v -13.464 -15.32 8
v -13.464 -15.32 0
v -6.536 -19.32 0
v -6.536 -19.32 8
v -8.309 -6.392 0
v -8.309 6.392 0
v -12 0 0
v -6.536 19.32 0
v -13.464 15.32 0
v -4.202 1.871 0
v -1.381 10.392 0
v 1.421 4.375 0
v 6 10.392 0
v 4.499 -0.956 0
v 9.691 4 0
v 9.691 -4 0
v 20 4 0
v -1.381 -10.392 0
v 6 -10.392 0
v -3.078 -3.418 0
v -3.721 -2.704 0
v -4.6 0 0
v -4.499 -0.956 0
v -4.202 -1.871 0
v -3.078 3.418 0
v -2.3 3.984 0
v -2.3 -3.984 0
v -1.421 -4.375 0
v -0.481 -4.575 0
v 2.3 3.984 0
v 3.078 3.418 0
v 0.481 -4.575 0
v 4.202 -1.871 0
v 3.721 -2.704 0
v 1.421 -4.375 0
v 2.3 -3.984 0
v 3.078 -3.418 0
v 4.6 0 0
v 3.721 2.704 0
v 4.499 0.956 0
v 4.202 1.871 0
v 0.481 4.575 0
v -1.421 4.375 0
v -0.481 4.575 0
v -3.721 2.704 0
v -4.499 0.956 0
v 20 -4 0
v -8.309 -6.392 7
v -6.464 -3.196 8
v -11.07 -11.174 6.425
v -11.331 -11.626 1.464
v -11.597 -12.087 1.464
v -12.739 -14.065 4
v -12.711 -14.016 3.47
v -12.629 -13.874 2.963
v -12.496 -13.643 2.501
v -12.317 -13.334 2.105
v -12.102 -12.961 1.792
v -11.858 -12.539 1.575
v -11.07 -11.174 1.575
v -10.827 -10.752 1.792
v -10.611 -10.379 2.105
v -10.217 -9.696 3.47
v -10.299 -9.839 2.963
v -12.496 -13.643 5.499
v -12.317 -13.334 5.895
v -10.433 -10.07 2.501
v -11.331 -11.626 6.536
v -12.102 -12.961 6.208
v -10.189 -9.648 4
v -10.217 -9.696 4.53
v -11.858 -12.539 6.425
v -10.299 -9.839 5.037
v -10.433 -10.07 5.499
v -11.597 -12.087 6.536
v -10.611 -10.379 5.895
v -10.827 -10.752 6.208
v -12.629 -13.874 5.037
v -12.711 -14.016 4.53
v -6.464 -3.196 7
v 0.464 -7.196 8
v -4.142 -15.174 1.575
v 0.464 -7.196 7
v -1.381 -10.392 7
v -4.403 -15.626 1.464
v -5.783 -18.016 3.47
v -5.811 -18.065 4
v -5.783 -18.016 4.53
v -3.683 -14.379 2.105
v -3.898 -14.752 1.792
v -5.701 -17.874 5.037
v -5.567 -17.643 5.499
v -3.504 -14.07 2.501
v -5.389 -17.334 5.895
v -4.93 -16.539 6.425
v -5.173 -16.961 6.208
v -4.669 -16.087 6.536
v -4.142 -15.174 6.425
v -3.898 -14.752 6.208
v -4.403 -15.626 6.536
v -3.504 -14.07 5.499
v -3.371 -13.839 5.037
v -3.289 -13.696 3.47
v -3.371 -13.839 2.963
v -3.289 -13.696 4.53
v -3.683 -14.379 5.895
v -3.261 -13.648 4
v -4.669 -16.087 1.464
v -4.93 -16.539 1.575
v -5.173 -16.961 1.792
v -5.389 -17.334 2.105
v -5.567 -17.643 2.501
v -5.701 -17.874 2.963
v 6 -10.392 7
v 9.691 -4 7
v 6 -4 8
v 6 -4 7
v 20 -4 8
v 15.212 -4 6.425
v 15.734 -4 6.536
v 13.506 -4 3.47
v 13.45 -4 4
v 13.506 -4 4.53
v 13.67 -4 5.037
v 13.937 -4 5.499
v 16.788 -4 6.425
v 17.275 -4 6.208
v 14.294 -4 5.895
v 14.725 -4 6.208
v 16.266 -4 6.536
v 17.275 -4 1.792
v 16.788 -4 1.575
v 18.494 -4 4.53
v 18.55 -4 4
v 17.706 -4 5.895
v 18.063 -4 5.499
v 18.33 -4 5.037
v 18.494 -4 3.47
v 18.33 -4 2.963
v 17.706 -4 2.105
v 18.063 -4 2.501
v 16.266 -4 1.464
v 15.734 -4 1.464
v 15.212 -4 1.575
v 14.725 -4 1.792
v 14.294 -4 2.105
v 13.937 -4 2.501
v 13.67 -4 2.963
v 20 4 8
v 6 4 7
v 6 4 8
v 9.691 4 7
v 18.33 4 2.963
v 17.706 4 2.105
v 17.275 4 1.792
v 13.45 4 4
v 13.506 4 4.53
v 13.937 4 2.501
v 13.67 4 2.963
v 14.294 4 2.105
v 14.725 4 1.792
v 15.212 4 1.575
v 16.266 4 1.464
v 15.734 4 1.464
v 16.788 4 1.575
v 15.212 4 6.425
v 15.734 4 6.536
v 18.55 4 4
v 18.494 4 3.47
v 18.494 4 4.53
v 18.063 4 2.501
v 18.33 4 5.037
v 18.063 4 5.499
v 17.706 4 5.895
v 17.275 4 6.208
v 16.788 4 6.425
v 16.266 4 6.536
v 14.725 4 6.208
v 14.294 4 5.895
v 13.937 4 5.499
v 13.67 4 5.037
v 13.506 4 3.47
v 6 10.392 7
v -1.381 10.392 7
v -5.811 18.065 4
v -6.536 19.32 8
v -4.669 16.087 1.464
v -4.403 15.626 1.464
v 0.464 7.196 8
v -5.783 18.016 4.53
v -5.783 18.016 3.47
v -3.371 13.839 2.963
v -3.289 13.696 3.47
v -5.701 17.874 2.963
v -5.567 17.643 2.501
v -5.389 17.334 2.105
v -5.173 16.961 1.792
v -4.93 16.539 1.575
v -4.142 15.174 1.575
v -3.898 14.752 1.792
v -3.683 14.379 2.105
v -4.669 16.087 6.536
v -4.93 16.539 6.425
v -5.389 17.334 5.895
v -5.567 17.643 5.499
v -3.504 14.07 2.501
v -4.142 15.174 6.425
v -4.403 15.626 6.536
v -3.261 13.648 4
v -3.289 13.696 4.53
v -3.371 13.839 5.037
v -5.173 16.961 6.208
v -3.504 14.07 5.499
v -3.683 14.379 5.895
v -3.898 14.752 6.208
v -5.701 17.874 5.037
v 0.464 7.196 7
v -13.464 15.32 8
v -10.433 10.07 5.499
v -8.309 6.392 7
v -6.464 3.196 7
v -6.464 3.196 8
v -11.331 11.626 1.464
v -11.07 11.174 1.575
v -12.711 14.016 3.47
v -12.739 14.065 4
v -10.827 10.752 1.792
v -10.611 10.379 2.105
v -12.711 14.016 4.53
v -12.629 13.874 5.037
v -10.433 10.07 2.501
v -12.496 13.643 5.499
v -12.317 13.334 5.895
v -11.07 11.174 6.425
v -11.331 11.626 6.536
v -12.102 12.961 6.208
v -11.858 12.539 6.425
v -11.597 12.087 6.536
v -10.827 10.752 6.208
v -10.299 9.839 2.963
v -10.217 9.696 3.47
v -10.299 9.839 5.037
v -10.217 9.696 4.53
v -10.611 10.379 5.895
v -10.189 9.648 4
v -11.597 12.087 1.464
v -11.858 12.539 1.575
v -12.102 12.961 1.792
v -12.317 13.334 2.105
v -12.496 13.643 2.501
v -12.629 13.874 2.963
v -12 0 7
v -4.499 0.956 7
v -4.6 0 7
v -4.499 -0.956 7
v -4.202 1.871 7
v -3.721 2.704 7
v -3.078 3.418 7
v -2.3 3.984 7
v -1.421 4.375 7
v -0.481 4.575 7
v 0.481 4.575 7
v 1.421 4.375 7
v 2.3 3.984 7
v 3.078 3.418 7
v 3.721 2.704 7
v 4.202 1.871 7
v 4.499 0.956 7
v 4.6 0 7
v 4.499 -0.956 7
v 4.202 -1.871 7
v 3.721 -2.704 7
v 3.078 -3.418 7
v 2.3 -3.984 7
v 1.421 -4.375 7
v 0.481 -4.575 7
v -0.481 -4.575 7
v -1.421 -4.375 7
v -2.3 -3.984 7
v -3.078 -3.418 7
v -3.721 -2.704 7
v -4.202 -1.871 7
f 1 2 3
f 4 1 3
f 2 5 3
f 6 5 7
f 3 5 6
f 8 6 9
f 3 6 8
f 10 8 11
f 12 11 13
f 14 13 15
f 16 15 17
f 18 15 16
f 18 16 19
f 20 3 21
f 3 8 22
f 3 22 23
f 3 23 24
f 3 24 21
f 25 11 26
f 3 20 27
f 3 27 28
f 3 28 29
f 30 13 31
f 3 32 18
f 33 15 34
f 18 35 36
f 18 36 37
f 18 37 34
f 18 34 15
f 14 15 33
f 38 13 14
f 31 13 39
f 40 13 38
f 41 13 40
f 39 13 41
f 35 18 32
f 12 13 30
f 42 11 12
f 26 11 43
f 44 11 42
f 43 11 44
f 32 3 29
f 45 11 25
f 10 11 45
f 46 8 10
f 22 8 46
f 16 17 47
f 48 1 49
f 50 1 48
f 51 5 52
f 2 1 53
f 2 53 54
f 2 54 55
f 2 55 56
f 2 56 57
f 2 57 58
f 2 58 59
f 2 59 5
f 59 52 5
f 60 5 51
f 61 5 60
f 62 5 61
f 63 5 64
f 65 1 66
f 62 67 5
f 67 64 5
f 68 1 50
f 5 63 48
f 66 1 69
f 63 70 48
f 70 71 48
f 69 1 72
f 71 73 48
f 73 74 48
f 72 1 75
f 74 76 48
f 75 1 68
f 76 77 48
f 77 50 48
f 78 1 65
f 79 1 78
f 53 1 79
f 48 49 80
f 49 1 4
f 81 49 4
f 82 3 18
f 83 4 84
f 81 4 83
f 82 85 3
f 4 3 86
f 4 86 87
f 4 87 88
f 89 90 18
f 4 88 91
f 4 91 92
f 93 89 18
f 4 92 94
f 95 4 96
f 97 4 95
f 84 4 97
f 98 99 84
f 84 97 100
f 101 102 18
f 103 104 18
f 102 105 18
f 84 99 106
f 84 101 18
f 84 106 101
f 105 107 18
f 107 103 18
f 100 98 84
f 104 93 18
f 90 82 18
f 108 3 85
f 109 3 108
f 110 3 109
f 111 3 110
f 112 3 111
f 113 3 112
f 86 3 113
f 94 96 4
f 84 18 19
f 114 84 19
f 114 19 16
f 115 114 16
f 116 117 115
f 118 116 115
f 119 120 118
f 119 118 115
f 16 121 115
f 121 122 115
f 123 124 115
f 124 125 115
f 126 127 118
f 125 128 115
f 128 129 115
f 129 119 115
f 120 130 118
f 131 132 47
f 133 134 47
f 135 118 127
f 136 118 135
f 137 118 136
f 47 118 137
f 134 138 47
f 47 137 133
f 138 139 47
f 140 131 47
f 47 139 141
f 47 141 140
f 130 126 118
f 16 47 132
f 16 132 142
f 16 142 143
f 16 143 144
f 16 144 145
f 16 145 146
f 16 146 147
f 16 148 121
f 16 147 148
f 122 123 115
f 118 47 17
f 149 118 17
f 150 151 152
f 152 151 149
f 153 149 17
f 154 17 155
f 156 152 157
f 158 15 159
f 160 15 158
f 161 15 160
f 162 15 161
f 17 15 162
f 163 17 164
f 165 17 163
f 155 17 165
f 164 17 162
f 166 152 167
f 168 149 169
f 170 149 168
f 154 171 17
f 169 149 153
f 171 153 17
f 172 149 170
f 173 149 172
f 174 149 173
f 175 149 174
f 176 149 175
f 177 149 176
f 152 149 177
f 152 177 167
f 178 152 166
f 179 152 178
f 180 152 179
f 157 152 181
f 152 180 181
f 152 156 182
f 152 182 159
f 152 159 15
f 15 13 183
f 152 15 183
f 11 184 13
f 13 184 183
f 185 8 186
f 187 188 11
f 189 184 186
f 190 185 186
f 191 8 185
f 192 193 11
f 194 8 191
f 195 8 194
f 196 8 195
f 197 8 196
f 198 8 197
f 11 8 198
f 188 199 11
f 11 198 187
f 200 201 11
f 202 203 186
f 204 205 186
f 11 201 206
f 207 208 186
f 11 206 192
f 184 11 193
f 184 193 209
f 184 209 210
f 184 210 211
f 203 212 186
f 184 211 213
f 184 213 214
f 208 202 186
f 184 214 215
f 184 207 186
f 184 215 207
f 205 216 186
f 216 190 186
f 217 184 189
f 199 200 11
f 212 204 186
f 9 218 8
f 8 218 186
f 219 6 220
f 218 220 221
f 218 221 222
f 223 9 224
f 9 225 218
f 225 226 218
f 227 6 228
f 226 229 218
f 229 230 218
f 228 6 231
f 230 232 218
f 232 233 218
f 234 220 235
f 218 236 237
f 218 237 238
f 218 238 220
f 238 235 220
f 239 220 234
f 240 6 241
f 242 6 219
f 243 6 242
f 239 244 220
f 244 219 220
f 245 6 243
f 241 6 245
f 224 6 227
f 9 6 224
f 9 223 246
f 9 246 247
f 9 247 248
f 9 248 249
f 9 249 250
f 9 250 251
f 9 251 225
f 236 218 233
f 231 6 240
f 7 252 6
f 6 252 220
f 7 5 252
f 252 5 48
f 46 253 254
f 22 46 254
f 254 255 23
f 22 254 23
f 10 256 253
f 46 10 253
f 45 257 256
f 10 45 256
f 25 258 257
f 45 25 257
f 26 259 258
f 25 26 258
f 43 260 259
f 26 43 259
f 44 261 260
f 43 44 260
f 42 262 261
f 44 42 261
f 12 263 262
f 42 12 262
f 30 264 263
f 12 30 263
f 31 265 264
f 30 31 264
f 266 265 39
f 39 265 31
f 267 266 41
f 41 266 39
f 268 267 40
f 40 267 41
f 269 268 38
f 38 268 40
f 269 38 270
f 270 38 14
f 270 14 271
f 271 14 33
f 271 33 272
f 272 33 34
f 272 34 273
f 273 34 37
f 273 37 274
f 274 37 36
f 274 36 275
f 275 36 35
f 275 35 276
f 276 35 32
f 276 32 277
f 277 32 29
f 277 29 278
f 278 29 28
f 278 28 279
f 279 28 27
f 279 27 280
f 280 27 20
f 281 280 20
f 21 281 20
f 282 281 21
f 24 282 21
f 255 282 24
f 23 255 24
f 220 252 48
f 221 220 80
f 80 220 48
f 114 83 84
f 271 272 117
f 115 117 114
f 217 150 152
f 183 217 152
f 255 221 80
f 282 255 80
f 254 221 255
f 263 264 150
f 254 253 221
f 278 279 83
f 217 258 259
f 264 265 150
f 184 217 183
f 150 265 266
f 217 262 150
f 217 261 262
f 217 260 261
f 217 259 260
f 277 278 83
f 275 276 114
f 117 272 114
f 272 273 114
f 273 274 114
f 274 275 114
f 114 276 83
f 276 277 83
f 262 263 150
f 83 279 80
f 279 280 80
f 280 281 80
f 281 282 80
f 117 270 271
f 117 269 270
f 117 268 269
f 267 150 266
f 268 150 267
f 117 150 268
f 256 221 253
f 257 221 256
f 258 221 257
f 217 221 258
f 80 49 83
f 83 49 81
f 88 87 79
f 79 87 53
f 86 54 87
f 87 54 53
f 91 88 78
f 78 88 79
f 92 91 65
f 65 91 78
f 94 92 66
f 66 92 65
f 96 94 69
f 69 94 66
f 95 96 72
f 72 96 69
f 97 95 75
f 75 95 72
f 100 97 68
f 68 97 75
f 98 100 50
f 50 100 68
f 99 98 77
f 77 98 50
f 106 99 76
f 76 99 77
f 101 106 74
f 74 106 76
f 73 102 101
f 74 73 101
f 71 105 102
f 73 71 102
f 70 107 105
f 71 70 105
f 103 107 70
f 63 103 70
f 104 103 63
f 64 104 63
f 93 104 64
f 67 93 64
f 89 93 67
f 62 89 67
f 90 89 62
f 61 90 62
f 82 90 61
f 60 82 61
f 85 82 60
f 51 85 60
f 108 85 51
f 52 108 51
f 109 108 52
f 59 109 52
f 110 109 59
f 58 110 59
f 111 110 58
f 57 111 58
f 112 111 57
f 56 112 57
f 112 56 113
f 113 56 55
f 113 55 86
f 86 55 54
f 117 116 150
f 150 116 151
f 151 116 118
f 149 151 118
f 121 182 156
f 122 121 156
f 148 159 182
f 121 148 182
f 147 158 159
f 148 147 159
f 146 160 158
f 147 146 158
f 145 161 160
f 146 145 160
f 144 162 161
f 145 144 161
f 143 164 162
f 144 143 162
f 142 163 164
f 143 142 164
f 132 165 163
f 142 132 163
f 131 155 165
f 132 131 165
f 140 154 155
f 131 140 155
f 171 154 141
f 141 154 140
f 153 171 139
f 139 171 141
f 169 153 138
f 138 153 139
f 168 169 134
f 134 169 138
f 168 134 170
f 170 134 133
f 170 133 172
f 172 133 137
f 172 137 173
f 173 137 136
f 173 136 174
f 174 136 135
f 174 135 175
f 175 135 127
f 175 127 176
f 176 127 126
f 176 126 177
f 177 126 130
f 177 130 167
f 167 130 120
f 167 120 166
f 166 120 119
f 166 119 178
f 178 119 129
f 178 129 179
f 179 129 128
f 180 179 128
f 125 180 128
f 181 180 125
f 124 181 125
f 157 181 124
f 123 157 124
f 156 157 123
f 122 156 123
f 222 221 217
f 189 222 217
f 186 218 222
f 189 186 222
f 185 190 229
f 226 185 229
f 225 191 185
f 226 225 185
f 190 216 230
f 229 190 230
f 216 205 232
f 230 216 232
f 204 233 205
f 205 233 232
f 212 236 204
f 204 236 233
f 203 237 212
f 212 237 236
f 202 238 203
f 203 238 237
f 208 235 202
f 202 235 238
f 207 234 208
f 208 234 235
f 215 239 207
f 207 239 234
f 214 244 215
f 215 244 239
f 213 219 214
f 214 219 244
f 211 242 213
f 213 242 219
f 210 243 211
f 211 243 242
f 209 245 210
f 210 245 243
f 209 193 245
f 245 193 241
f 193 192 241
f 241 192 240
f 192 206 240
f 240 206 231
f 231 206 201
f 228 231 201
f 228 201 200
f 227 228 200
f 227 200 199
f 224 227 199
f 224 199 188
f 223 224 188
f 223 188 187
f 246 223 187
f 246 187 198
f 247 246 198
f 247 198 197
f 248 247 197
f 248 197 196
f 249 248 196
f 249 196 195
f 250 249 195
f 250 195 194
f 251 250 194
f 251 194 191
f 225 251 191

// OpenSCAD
// Description: "Lego-compatible grid beam"
// Project home: http://bitbeam.org

// Each hole is 8mm apart from each other
// The holes are 5.1 mm in diameter.

beam_width = 8;
hole_diameter = 5.1;
hole_radius = hole_diameter / 2;

module beam(number_of_holes) {
    beam_length = number_of_holes * beam_width;
	difference() {
		// Draw the beam...
		cube([beam_length-2,8,beam_width]);
    
         // Cut the holes...
		for (x=[10 : beam_width : beam_length]) {
			rotate([90,0,0])
			translate([x,beam_width/2,-10])
			cylinder(r=hole_radius, h=12, $fn=30);
         }
    }
}


union() {
	difference(){
	    cylinder(r=12, h=7, $fn=6);	
	
	    translate([0,0,-2])
	    cylinder(r=4.6, h=10, $fn=30);
	}
	
	translate([6,-4,0])
	beam(2);
	
	rotate(120)
	translate([6,-4,0])
	beam(2);
	
	rotate(240)
	translate([6,-4,0])
	beam(2);
}
